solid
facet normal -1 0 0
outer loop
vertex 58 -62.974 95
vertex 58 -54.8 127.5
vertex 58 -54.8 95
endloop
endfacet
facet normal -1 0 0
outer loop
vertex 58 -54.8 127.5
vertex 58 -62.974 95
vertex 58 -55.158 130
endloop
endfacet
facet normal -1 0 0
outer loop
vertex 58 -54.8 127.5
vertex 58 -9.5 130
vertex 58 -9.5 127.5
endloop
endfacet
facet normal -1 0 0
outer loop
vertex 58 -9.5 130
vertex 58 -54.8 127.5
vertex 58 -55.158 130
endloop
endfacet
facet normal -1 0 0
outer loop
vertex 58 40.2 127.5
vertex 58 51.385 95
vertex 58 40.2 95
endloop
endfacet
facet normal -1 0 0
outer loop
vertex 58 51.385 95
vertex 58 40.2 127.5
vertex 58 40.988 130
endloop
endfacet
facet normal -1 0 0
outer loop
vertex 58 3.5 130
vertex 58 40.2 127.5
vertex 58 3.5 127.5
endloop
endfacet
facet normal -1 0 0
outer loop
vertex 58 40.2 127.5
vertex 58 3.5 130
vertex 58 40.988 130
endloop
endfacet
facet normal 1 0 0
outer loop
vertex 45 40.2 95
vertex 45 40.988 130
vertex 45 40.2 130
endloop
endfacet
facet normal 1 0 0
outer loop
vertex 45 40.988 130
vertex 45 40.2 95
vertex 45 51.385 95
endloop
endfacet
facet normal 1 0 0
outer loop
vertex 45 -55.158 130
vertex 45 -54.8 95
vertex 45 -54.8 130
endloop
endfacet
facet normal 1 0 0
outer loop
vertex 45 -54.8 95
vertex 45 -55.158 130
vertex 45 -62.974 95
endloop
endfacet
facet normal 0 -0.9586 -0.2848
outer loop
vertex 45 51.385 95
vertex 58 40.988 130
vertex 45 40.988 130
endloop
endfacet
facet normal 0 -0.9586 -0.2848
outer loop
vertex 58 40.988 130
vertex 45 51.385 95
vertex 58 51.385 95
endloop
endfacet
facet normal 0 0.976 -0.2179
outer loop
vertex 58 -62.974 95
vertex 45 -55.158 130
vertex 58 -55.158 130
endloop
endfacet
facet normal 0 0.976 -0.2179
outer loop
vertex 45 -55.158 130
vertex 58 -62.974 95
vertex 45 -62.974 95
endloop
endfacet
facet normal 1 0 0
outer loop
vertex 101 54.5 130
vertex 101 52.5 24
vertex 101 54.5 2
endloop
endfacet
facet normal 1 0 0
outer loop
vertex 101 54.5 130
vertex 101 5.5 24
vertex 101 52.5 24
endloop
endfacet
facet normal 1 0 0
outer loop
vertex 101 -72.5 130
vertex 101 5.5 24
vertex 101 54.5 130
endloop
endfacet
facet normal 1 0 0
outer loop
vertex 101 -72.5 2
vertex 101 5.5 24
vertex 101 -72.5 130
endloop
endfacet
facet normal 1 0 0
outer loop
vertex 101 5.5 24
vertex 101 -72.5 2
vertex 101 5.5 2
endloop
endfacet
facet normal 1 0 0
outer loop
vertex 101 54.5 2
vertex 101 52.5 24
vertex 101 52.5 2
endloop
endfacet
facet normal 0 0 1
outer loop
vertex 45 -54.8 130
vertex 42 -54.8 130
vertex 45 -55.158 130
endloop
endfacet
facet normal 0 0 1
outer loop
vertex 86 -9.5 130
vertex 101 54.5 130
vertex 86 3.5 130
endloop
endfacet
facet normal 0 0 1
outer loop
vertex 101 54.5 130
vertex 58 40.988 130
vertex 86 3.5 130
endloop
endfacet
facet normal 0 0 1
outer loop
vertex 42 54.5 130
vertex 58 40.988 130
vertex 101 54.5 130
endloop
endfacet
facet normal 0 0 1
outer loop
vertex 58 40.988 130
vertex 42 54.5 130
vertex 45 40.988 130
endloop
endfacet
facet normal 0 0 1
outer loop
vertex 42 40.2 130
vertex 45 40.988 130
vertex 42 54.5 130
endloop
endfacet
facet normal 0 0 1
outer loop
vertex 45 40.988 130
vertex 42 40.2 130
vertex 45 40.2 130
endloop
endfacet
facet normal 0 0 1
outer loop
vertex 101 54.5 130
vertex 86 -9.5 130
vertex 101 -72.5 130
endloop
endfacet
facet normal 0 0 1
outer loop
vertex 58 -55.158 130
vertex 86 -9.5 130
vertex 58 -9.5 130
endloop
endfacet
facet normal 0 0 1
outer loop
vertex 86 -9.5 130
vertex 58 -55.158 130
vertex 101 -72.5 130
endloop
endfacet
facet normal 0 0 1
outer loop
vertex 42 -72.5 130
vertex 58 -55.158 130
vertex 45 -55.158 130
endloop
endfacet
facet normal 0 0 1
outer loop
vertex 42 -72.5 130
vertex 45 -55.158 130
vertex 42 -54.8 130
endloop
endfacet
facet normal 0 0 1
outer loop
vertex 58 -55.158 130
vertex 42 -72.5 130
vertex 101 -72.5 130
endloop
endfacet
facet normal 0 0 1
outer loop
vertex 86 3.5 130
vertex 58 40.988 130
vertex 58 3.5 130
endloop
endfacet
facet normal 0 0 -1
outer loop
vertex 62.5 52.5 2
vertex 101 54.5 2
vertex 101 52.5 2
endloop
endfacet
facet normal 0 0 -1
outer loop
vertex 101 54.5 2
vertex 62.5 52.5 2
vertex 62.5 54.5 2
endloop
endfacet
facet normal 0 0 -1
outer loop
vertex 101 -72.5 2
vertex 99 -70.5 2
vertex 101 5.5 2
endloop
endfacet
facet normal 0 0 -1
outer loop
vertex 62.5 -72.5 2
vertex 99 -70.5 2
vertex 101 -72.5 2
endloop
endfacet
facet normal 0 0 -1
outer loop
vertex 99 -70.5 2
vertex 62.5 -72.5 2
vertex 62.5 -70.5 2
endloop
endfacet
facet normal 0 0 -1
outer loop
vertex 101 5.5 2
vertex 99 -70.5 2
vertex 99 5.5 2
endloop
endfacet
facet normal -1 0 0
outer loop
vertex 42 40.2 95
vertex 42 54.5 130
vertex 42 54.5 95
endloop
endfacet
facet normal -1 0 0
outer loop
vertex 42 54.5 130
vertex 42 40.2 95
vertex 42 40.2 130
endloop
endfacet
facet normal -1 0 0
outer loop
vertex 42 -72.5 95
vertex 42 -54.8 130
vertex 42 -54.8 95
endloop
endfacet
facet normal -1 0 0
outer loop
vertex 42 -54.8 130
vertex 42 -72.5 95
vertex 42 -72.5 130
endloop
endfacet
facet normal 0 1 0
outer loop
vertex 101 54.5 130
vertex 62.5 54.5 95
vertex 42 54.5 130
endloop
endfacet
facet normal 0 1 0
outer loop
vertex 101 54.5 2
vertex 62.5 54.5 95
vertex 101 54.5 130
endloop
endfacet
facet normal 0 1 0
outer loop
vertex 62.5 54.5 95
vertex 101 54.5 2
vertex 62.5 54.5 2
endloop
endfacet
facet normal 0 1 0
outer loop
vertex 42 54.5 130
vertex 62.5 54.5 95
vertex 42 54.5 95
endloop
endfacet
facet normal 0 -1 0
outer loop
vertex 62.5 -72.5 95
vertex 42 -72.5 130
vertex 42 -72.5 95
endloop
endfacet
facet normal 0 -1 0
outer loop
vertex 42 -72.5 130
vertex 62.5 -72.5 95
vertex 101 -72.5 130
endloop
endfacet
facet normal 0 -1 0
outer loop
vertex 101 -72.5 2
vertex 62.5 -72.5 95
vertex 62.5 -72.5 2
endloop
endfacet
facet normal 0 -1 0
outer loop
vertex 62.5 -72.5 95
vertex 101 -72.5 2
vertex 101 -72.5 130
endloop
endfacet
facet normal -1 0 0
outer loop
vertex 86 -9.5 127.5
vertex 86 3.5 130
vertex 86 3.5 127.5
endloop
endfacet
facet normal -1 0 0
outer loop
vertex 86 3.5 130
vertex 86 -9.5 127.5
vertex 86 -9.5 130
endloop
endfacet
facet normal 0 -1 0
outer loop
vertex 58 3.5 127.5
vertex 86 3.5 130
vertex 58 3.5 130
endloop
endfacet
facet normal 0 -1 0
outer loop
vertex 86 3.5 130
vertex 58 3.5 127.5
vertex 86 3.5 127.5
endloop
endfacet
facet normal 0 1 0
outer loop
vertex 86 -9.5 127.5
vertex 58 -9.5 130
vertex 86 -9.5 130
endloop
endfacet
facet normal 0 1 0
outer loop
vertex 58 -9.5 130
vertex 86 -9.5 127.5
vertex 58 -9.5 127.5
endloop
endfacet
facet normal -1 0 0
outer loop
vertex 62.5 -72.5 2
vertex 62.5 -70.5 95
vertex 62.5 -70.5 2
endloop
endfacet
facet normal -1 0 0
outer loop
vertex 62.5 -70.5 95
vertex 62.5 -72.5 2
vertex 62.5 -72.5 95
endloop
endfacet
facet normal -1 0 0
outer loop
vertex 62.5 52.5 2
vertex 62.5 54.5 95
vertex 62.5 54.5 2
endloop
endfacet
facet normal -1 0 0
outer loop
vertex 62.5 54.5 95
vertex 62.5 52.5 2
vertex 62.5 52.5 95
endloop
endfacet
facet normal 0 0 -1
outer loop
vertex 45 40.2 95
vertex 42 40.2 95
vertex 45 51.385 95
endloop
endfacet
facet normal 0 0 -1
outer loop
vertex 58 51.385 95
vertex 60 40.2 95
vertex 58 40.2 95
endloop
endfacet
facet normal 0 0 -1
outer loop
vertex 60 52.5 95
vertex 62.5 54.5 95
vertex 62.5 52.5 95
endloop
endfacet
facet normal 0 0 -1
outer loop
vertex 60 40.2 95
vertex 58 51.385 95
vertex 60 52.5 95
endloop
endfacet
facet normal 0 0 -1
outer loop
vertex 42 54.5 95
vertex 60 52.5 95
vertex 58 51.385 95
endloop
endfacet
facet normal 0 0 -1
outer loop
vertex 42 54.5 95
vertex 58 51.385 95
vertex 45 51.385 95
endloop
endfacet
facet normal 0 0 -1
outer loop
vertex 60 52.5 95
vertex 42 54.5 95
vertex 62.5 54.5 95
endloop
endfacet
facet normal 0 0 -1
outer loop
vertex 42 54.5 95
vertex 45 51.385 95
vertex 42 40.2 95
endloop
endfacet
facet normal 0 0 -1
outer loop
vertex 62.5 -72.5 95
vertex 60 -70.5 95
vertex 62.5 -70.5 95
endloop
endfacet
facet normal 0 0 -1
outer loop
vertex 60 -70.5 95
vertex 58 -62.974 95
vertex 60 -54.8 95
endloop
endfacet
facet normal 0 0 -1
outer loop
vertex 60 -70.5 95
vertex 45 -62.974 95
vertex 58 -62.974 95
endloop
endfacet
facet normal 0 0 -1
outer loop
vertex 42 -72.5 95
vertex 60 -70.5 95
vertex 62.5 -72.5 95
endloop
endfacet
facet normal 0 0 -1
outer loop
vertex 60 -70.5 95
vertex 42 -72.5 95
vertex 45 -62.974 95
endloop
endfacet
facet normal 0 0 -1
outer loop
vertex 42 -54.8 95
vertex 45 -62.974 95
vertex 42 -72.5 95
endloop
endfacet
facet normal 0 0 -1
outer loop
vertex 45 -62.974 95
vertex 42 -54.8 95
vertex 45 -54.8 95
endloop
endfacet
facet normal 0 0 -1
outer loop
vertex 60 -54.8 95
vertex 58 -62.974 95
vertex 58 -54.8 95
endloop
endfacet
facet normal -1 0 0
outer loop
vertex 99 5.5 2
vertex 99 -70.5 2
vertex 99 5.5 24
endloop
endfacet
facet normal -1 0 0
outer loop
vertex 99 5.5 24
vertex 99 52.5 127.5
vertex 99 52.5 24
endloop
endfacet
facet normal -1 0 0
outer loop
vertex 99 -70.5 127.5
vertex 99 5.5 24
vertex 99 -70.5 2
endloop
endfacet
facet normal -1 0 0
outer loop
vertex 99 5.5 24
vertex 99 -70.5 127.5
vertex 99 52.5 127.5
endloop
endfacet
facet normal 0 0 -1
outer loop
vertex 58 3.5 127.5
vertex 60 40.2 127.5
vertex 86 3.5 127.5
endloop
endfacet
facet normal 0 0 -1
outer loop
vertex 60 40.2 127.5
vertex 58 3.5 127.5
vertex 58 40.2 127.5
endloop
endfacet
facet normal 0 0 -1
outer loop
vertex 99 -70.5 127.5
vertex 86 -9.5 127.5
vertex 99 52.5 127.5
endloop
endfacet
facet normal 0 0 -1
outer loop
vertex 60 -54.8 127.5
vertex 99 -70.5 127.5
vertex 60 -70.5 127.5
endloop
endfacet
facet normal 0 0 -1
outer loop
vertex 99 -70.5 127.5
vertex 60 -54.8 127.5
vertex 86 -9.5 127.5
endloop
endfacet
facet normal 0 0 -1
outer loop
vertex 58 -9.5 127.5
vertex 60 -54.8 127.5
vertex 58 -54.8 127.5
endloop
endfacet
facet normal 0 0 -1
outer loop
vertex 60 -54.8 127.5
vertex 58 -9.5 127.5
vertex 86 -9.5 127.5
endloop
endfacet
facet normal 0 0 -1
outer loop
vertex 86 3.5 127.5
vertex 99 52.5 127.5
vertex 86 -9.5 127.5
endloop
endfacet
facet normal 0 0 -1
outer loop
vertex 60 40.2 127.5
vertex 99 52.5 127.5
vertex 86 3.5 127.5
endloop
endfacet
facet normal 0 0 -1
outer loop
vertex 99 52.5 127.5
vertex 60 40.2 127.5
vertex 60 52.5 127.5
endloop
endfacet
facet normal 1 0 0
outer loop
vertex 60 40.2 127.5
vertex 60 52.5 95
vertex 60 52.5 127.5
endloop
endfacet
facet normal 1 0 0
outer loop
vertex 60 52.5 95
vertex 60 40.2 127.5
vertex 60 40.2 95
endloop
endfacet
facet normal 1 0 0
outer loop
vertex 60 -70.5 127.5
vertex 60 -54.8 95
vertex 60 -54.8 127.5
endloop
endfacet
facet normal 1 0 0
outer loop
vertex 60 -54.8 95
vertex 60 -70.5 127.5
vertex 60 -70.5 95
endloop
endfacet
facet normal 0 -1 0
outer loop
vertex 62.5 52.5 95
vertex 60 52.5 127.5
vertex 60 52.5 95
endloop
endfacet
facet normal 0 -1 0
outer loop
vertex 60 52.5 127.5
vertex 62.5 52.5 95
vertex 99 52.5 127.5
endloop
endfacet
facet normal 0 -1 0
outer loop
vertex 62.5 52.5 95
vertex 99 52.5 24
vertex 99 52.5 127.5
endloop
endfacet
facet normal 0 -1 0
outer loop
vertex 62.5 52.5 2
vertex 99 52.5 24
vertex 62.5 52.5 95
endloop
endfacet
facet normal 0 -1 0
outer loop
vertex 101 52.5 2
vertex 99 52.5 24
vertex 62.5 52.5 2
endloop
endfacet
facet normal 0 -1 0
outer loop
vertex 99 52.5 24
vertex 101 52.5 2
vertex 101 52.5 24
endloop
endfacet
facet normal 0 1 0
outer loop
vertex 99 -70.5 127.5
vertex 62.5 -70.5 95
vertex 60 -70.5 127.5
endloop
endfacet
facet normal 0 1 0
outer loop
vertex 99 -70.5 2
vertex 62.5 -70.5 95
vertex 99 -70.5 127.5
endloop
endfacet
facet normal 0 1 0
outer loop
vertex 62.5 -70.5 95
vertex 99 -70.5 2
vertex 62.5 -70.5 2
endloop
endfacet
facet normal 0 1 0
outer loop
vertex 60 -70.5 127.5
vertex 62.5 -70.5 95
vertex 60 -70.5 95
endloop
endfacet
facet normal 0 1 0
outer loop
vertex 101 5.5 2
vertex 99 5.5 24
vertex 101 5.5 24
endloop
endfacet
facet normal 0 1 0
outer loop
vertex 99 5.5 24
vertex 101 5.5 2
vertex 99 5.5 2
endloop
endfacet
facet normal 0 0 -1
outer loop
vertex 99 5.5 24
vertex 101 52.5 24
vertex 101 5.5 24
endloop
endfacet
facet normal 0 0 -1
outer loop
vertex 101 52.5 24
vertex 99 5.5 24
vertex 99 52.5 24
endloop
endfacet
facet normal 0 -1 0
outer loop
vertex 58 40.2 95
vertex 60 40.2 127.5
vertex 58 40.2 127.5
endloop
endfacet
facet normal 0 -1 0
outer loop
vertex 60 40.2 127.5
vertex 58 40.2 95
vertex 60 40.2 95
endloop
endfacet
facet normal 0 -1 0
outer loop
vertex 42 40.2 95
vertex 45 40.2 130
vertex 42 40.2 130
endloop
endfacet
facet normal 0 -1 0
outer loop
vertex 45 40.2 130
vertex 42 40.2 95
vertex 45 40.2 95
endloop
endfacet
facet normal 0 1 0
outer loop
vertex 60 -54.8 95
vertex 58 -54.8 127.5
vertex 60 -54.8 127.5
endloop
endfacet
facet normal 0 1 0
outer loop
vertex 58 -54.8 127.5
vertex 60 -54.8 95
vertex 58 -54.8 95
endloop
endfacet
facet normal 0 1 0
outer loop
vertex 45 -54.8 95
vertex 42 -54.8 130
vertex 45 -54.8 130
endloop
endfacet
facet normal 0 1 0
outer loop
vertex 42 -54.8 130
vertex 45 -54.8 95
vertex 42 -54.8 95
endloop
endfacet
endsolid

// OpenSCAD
// Back Cover
difference() {
    translate([71.5,-9,66]) color("white") cube([59,127,128], center=true);
    translate([0,0,-5]) cylinder(d=195, h=10, center=true, $fn=90);
    translate([65.5,-3,66]) cube([41,13,132], center=true);
    difference(){
        translate([51.5,0,66]) cube([13,140,132], center=true);
        translate([51.5,49.6,62]) rotate([90,0,90]) color("blue") linear_extrude(height = 15, center = true) polygon(points=[[20.5,-30],[20.5,140],[-30,140]]);
        translate([51.5,-63,63.1]) rotate([90,0,270]) color("red") linear_extrude(height = 20, center = true) polygon(points=[[10,-13],[10,90],[-13,90]]);
    }
    translate([51.5,-12.5,47.5]) color("green") cube([22,140,95], center=true);
    translate([79.5,-9,47.5]) color("pink") cube([39,123,160], center=true);
    translate([4,99,-40.5]) rotate([90,270,90]) translate([50.5,70,75.5]) color("blue") cube([28,47,43], center=true);
    translate([29.5,-7.3,102.5]) color("black") cube([69,95,50], center=true);
    translate([23.5,-7.3,112.5]) color("black") cube([69,95,50], center=true);
}
